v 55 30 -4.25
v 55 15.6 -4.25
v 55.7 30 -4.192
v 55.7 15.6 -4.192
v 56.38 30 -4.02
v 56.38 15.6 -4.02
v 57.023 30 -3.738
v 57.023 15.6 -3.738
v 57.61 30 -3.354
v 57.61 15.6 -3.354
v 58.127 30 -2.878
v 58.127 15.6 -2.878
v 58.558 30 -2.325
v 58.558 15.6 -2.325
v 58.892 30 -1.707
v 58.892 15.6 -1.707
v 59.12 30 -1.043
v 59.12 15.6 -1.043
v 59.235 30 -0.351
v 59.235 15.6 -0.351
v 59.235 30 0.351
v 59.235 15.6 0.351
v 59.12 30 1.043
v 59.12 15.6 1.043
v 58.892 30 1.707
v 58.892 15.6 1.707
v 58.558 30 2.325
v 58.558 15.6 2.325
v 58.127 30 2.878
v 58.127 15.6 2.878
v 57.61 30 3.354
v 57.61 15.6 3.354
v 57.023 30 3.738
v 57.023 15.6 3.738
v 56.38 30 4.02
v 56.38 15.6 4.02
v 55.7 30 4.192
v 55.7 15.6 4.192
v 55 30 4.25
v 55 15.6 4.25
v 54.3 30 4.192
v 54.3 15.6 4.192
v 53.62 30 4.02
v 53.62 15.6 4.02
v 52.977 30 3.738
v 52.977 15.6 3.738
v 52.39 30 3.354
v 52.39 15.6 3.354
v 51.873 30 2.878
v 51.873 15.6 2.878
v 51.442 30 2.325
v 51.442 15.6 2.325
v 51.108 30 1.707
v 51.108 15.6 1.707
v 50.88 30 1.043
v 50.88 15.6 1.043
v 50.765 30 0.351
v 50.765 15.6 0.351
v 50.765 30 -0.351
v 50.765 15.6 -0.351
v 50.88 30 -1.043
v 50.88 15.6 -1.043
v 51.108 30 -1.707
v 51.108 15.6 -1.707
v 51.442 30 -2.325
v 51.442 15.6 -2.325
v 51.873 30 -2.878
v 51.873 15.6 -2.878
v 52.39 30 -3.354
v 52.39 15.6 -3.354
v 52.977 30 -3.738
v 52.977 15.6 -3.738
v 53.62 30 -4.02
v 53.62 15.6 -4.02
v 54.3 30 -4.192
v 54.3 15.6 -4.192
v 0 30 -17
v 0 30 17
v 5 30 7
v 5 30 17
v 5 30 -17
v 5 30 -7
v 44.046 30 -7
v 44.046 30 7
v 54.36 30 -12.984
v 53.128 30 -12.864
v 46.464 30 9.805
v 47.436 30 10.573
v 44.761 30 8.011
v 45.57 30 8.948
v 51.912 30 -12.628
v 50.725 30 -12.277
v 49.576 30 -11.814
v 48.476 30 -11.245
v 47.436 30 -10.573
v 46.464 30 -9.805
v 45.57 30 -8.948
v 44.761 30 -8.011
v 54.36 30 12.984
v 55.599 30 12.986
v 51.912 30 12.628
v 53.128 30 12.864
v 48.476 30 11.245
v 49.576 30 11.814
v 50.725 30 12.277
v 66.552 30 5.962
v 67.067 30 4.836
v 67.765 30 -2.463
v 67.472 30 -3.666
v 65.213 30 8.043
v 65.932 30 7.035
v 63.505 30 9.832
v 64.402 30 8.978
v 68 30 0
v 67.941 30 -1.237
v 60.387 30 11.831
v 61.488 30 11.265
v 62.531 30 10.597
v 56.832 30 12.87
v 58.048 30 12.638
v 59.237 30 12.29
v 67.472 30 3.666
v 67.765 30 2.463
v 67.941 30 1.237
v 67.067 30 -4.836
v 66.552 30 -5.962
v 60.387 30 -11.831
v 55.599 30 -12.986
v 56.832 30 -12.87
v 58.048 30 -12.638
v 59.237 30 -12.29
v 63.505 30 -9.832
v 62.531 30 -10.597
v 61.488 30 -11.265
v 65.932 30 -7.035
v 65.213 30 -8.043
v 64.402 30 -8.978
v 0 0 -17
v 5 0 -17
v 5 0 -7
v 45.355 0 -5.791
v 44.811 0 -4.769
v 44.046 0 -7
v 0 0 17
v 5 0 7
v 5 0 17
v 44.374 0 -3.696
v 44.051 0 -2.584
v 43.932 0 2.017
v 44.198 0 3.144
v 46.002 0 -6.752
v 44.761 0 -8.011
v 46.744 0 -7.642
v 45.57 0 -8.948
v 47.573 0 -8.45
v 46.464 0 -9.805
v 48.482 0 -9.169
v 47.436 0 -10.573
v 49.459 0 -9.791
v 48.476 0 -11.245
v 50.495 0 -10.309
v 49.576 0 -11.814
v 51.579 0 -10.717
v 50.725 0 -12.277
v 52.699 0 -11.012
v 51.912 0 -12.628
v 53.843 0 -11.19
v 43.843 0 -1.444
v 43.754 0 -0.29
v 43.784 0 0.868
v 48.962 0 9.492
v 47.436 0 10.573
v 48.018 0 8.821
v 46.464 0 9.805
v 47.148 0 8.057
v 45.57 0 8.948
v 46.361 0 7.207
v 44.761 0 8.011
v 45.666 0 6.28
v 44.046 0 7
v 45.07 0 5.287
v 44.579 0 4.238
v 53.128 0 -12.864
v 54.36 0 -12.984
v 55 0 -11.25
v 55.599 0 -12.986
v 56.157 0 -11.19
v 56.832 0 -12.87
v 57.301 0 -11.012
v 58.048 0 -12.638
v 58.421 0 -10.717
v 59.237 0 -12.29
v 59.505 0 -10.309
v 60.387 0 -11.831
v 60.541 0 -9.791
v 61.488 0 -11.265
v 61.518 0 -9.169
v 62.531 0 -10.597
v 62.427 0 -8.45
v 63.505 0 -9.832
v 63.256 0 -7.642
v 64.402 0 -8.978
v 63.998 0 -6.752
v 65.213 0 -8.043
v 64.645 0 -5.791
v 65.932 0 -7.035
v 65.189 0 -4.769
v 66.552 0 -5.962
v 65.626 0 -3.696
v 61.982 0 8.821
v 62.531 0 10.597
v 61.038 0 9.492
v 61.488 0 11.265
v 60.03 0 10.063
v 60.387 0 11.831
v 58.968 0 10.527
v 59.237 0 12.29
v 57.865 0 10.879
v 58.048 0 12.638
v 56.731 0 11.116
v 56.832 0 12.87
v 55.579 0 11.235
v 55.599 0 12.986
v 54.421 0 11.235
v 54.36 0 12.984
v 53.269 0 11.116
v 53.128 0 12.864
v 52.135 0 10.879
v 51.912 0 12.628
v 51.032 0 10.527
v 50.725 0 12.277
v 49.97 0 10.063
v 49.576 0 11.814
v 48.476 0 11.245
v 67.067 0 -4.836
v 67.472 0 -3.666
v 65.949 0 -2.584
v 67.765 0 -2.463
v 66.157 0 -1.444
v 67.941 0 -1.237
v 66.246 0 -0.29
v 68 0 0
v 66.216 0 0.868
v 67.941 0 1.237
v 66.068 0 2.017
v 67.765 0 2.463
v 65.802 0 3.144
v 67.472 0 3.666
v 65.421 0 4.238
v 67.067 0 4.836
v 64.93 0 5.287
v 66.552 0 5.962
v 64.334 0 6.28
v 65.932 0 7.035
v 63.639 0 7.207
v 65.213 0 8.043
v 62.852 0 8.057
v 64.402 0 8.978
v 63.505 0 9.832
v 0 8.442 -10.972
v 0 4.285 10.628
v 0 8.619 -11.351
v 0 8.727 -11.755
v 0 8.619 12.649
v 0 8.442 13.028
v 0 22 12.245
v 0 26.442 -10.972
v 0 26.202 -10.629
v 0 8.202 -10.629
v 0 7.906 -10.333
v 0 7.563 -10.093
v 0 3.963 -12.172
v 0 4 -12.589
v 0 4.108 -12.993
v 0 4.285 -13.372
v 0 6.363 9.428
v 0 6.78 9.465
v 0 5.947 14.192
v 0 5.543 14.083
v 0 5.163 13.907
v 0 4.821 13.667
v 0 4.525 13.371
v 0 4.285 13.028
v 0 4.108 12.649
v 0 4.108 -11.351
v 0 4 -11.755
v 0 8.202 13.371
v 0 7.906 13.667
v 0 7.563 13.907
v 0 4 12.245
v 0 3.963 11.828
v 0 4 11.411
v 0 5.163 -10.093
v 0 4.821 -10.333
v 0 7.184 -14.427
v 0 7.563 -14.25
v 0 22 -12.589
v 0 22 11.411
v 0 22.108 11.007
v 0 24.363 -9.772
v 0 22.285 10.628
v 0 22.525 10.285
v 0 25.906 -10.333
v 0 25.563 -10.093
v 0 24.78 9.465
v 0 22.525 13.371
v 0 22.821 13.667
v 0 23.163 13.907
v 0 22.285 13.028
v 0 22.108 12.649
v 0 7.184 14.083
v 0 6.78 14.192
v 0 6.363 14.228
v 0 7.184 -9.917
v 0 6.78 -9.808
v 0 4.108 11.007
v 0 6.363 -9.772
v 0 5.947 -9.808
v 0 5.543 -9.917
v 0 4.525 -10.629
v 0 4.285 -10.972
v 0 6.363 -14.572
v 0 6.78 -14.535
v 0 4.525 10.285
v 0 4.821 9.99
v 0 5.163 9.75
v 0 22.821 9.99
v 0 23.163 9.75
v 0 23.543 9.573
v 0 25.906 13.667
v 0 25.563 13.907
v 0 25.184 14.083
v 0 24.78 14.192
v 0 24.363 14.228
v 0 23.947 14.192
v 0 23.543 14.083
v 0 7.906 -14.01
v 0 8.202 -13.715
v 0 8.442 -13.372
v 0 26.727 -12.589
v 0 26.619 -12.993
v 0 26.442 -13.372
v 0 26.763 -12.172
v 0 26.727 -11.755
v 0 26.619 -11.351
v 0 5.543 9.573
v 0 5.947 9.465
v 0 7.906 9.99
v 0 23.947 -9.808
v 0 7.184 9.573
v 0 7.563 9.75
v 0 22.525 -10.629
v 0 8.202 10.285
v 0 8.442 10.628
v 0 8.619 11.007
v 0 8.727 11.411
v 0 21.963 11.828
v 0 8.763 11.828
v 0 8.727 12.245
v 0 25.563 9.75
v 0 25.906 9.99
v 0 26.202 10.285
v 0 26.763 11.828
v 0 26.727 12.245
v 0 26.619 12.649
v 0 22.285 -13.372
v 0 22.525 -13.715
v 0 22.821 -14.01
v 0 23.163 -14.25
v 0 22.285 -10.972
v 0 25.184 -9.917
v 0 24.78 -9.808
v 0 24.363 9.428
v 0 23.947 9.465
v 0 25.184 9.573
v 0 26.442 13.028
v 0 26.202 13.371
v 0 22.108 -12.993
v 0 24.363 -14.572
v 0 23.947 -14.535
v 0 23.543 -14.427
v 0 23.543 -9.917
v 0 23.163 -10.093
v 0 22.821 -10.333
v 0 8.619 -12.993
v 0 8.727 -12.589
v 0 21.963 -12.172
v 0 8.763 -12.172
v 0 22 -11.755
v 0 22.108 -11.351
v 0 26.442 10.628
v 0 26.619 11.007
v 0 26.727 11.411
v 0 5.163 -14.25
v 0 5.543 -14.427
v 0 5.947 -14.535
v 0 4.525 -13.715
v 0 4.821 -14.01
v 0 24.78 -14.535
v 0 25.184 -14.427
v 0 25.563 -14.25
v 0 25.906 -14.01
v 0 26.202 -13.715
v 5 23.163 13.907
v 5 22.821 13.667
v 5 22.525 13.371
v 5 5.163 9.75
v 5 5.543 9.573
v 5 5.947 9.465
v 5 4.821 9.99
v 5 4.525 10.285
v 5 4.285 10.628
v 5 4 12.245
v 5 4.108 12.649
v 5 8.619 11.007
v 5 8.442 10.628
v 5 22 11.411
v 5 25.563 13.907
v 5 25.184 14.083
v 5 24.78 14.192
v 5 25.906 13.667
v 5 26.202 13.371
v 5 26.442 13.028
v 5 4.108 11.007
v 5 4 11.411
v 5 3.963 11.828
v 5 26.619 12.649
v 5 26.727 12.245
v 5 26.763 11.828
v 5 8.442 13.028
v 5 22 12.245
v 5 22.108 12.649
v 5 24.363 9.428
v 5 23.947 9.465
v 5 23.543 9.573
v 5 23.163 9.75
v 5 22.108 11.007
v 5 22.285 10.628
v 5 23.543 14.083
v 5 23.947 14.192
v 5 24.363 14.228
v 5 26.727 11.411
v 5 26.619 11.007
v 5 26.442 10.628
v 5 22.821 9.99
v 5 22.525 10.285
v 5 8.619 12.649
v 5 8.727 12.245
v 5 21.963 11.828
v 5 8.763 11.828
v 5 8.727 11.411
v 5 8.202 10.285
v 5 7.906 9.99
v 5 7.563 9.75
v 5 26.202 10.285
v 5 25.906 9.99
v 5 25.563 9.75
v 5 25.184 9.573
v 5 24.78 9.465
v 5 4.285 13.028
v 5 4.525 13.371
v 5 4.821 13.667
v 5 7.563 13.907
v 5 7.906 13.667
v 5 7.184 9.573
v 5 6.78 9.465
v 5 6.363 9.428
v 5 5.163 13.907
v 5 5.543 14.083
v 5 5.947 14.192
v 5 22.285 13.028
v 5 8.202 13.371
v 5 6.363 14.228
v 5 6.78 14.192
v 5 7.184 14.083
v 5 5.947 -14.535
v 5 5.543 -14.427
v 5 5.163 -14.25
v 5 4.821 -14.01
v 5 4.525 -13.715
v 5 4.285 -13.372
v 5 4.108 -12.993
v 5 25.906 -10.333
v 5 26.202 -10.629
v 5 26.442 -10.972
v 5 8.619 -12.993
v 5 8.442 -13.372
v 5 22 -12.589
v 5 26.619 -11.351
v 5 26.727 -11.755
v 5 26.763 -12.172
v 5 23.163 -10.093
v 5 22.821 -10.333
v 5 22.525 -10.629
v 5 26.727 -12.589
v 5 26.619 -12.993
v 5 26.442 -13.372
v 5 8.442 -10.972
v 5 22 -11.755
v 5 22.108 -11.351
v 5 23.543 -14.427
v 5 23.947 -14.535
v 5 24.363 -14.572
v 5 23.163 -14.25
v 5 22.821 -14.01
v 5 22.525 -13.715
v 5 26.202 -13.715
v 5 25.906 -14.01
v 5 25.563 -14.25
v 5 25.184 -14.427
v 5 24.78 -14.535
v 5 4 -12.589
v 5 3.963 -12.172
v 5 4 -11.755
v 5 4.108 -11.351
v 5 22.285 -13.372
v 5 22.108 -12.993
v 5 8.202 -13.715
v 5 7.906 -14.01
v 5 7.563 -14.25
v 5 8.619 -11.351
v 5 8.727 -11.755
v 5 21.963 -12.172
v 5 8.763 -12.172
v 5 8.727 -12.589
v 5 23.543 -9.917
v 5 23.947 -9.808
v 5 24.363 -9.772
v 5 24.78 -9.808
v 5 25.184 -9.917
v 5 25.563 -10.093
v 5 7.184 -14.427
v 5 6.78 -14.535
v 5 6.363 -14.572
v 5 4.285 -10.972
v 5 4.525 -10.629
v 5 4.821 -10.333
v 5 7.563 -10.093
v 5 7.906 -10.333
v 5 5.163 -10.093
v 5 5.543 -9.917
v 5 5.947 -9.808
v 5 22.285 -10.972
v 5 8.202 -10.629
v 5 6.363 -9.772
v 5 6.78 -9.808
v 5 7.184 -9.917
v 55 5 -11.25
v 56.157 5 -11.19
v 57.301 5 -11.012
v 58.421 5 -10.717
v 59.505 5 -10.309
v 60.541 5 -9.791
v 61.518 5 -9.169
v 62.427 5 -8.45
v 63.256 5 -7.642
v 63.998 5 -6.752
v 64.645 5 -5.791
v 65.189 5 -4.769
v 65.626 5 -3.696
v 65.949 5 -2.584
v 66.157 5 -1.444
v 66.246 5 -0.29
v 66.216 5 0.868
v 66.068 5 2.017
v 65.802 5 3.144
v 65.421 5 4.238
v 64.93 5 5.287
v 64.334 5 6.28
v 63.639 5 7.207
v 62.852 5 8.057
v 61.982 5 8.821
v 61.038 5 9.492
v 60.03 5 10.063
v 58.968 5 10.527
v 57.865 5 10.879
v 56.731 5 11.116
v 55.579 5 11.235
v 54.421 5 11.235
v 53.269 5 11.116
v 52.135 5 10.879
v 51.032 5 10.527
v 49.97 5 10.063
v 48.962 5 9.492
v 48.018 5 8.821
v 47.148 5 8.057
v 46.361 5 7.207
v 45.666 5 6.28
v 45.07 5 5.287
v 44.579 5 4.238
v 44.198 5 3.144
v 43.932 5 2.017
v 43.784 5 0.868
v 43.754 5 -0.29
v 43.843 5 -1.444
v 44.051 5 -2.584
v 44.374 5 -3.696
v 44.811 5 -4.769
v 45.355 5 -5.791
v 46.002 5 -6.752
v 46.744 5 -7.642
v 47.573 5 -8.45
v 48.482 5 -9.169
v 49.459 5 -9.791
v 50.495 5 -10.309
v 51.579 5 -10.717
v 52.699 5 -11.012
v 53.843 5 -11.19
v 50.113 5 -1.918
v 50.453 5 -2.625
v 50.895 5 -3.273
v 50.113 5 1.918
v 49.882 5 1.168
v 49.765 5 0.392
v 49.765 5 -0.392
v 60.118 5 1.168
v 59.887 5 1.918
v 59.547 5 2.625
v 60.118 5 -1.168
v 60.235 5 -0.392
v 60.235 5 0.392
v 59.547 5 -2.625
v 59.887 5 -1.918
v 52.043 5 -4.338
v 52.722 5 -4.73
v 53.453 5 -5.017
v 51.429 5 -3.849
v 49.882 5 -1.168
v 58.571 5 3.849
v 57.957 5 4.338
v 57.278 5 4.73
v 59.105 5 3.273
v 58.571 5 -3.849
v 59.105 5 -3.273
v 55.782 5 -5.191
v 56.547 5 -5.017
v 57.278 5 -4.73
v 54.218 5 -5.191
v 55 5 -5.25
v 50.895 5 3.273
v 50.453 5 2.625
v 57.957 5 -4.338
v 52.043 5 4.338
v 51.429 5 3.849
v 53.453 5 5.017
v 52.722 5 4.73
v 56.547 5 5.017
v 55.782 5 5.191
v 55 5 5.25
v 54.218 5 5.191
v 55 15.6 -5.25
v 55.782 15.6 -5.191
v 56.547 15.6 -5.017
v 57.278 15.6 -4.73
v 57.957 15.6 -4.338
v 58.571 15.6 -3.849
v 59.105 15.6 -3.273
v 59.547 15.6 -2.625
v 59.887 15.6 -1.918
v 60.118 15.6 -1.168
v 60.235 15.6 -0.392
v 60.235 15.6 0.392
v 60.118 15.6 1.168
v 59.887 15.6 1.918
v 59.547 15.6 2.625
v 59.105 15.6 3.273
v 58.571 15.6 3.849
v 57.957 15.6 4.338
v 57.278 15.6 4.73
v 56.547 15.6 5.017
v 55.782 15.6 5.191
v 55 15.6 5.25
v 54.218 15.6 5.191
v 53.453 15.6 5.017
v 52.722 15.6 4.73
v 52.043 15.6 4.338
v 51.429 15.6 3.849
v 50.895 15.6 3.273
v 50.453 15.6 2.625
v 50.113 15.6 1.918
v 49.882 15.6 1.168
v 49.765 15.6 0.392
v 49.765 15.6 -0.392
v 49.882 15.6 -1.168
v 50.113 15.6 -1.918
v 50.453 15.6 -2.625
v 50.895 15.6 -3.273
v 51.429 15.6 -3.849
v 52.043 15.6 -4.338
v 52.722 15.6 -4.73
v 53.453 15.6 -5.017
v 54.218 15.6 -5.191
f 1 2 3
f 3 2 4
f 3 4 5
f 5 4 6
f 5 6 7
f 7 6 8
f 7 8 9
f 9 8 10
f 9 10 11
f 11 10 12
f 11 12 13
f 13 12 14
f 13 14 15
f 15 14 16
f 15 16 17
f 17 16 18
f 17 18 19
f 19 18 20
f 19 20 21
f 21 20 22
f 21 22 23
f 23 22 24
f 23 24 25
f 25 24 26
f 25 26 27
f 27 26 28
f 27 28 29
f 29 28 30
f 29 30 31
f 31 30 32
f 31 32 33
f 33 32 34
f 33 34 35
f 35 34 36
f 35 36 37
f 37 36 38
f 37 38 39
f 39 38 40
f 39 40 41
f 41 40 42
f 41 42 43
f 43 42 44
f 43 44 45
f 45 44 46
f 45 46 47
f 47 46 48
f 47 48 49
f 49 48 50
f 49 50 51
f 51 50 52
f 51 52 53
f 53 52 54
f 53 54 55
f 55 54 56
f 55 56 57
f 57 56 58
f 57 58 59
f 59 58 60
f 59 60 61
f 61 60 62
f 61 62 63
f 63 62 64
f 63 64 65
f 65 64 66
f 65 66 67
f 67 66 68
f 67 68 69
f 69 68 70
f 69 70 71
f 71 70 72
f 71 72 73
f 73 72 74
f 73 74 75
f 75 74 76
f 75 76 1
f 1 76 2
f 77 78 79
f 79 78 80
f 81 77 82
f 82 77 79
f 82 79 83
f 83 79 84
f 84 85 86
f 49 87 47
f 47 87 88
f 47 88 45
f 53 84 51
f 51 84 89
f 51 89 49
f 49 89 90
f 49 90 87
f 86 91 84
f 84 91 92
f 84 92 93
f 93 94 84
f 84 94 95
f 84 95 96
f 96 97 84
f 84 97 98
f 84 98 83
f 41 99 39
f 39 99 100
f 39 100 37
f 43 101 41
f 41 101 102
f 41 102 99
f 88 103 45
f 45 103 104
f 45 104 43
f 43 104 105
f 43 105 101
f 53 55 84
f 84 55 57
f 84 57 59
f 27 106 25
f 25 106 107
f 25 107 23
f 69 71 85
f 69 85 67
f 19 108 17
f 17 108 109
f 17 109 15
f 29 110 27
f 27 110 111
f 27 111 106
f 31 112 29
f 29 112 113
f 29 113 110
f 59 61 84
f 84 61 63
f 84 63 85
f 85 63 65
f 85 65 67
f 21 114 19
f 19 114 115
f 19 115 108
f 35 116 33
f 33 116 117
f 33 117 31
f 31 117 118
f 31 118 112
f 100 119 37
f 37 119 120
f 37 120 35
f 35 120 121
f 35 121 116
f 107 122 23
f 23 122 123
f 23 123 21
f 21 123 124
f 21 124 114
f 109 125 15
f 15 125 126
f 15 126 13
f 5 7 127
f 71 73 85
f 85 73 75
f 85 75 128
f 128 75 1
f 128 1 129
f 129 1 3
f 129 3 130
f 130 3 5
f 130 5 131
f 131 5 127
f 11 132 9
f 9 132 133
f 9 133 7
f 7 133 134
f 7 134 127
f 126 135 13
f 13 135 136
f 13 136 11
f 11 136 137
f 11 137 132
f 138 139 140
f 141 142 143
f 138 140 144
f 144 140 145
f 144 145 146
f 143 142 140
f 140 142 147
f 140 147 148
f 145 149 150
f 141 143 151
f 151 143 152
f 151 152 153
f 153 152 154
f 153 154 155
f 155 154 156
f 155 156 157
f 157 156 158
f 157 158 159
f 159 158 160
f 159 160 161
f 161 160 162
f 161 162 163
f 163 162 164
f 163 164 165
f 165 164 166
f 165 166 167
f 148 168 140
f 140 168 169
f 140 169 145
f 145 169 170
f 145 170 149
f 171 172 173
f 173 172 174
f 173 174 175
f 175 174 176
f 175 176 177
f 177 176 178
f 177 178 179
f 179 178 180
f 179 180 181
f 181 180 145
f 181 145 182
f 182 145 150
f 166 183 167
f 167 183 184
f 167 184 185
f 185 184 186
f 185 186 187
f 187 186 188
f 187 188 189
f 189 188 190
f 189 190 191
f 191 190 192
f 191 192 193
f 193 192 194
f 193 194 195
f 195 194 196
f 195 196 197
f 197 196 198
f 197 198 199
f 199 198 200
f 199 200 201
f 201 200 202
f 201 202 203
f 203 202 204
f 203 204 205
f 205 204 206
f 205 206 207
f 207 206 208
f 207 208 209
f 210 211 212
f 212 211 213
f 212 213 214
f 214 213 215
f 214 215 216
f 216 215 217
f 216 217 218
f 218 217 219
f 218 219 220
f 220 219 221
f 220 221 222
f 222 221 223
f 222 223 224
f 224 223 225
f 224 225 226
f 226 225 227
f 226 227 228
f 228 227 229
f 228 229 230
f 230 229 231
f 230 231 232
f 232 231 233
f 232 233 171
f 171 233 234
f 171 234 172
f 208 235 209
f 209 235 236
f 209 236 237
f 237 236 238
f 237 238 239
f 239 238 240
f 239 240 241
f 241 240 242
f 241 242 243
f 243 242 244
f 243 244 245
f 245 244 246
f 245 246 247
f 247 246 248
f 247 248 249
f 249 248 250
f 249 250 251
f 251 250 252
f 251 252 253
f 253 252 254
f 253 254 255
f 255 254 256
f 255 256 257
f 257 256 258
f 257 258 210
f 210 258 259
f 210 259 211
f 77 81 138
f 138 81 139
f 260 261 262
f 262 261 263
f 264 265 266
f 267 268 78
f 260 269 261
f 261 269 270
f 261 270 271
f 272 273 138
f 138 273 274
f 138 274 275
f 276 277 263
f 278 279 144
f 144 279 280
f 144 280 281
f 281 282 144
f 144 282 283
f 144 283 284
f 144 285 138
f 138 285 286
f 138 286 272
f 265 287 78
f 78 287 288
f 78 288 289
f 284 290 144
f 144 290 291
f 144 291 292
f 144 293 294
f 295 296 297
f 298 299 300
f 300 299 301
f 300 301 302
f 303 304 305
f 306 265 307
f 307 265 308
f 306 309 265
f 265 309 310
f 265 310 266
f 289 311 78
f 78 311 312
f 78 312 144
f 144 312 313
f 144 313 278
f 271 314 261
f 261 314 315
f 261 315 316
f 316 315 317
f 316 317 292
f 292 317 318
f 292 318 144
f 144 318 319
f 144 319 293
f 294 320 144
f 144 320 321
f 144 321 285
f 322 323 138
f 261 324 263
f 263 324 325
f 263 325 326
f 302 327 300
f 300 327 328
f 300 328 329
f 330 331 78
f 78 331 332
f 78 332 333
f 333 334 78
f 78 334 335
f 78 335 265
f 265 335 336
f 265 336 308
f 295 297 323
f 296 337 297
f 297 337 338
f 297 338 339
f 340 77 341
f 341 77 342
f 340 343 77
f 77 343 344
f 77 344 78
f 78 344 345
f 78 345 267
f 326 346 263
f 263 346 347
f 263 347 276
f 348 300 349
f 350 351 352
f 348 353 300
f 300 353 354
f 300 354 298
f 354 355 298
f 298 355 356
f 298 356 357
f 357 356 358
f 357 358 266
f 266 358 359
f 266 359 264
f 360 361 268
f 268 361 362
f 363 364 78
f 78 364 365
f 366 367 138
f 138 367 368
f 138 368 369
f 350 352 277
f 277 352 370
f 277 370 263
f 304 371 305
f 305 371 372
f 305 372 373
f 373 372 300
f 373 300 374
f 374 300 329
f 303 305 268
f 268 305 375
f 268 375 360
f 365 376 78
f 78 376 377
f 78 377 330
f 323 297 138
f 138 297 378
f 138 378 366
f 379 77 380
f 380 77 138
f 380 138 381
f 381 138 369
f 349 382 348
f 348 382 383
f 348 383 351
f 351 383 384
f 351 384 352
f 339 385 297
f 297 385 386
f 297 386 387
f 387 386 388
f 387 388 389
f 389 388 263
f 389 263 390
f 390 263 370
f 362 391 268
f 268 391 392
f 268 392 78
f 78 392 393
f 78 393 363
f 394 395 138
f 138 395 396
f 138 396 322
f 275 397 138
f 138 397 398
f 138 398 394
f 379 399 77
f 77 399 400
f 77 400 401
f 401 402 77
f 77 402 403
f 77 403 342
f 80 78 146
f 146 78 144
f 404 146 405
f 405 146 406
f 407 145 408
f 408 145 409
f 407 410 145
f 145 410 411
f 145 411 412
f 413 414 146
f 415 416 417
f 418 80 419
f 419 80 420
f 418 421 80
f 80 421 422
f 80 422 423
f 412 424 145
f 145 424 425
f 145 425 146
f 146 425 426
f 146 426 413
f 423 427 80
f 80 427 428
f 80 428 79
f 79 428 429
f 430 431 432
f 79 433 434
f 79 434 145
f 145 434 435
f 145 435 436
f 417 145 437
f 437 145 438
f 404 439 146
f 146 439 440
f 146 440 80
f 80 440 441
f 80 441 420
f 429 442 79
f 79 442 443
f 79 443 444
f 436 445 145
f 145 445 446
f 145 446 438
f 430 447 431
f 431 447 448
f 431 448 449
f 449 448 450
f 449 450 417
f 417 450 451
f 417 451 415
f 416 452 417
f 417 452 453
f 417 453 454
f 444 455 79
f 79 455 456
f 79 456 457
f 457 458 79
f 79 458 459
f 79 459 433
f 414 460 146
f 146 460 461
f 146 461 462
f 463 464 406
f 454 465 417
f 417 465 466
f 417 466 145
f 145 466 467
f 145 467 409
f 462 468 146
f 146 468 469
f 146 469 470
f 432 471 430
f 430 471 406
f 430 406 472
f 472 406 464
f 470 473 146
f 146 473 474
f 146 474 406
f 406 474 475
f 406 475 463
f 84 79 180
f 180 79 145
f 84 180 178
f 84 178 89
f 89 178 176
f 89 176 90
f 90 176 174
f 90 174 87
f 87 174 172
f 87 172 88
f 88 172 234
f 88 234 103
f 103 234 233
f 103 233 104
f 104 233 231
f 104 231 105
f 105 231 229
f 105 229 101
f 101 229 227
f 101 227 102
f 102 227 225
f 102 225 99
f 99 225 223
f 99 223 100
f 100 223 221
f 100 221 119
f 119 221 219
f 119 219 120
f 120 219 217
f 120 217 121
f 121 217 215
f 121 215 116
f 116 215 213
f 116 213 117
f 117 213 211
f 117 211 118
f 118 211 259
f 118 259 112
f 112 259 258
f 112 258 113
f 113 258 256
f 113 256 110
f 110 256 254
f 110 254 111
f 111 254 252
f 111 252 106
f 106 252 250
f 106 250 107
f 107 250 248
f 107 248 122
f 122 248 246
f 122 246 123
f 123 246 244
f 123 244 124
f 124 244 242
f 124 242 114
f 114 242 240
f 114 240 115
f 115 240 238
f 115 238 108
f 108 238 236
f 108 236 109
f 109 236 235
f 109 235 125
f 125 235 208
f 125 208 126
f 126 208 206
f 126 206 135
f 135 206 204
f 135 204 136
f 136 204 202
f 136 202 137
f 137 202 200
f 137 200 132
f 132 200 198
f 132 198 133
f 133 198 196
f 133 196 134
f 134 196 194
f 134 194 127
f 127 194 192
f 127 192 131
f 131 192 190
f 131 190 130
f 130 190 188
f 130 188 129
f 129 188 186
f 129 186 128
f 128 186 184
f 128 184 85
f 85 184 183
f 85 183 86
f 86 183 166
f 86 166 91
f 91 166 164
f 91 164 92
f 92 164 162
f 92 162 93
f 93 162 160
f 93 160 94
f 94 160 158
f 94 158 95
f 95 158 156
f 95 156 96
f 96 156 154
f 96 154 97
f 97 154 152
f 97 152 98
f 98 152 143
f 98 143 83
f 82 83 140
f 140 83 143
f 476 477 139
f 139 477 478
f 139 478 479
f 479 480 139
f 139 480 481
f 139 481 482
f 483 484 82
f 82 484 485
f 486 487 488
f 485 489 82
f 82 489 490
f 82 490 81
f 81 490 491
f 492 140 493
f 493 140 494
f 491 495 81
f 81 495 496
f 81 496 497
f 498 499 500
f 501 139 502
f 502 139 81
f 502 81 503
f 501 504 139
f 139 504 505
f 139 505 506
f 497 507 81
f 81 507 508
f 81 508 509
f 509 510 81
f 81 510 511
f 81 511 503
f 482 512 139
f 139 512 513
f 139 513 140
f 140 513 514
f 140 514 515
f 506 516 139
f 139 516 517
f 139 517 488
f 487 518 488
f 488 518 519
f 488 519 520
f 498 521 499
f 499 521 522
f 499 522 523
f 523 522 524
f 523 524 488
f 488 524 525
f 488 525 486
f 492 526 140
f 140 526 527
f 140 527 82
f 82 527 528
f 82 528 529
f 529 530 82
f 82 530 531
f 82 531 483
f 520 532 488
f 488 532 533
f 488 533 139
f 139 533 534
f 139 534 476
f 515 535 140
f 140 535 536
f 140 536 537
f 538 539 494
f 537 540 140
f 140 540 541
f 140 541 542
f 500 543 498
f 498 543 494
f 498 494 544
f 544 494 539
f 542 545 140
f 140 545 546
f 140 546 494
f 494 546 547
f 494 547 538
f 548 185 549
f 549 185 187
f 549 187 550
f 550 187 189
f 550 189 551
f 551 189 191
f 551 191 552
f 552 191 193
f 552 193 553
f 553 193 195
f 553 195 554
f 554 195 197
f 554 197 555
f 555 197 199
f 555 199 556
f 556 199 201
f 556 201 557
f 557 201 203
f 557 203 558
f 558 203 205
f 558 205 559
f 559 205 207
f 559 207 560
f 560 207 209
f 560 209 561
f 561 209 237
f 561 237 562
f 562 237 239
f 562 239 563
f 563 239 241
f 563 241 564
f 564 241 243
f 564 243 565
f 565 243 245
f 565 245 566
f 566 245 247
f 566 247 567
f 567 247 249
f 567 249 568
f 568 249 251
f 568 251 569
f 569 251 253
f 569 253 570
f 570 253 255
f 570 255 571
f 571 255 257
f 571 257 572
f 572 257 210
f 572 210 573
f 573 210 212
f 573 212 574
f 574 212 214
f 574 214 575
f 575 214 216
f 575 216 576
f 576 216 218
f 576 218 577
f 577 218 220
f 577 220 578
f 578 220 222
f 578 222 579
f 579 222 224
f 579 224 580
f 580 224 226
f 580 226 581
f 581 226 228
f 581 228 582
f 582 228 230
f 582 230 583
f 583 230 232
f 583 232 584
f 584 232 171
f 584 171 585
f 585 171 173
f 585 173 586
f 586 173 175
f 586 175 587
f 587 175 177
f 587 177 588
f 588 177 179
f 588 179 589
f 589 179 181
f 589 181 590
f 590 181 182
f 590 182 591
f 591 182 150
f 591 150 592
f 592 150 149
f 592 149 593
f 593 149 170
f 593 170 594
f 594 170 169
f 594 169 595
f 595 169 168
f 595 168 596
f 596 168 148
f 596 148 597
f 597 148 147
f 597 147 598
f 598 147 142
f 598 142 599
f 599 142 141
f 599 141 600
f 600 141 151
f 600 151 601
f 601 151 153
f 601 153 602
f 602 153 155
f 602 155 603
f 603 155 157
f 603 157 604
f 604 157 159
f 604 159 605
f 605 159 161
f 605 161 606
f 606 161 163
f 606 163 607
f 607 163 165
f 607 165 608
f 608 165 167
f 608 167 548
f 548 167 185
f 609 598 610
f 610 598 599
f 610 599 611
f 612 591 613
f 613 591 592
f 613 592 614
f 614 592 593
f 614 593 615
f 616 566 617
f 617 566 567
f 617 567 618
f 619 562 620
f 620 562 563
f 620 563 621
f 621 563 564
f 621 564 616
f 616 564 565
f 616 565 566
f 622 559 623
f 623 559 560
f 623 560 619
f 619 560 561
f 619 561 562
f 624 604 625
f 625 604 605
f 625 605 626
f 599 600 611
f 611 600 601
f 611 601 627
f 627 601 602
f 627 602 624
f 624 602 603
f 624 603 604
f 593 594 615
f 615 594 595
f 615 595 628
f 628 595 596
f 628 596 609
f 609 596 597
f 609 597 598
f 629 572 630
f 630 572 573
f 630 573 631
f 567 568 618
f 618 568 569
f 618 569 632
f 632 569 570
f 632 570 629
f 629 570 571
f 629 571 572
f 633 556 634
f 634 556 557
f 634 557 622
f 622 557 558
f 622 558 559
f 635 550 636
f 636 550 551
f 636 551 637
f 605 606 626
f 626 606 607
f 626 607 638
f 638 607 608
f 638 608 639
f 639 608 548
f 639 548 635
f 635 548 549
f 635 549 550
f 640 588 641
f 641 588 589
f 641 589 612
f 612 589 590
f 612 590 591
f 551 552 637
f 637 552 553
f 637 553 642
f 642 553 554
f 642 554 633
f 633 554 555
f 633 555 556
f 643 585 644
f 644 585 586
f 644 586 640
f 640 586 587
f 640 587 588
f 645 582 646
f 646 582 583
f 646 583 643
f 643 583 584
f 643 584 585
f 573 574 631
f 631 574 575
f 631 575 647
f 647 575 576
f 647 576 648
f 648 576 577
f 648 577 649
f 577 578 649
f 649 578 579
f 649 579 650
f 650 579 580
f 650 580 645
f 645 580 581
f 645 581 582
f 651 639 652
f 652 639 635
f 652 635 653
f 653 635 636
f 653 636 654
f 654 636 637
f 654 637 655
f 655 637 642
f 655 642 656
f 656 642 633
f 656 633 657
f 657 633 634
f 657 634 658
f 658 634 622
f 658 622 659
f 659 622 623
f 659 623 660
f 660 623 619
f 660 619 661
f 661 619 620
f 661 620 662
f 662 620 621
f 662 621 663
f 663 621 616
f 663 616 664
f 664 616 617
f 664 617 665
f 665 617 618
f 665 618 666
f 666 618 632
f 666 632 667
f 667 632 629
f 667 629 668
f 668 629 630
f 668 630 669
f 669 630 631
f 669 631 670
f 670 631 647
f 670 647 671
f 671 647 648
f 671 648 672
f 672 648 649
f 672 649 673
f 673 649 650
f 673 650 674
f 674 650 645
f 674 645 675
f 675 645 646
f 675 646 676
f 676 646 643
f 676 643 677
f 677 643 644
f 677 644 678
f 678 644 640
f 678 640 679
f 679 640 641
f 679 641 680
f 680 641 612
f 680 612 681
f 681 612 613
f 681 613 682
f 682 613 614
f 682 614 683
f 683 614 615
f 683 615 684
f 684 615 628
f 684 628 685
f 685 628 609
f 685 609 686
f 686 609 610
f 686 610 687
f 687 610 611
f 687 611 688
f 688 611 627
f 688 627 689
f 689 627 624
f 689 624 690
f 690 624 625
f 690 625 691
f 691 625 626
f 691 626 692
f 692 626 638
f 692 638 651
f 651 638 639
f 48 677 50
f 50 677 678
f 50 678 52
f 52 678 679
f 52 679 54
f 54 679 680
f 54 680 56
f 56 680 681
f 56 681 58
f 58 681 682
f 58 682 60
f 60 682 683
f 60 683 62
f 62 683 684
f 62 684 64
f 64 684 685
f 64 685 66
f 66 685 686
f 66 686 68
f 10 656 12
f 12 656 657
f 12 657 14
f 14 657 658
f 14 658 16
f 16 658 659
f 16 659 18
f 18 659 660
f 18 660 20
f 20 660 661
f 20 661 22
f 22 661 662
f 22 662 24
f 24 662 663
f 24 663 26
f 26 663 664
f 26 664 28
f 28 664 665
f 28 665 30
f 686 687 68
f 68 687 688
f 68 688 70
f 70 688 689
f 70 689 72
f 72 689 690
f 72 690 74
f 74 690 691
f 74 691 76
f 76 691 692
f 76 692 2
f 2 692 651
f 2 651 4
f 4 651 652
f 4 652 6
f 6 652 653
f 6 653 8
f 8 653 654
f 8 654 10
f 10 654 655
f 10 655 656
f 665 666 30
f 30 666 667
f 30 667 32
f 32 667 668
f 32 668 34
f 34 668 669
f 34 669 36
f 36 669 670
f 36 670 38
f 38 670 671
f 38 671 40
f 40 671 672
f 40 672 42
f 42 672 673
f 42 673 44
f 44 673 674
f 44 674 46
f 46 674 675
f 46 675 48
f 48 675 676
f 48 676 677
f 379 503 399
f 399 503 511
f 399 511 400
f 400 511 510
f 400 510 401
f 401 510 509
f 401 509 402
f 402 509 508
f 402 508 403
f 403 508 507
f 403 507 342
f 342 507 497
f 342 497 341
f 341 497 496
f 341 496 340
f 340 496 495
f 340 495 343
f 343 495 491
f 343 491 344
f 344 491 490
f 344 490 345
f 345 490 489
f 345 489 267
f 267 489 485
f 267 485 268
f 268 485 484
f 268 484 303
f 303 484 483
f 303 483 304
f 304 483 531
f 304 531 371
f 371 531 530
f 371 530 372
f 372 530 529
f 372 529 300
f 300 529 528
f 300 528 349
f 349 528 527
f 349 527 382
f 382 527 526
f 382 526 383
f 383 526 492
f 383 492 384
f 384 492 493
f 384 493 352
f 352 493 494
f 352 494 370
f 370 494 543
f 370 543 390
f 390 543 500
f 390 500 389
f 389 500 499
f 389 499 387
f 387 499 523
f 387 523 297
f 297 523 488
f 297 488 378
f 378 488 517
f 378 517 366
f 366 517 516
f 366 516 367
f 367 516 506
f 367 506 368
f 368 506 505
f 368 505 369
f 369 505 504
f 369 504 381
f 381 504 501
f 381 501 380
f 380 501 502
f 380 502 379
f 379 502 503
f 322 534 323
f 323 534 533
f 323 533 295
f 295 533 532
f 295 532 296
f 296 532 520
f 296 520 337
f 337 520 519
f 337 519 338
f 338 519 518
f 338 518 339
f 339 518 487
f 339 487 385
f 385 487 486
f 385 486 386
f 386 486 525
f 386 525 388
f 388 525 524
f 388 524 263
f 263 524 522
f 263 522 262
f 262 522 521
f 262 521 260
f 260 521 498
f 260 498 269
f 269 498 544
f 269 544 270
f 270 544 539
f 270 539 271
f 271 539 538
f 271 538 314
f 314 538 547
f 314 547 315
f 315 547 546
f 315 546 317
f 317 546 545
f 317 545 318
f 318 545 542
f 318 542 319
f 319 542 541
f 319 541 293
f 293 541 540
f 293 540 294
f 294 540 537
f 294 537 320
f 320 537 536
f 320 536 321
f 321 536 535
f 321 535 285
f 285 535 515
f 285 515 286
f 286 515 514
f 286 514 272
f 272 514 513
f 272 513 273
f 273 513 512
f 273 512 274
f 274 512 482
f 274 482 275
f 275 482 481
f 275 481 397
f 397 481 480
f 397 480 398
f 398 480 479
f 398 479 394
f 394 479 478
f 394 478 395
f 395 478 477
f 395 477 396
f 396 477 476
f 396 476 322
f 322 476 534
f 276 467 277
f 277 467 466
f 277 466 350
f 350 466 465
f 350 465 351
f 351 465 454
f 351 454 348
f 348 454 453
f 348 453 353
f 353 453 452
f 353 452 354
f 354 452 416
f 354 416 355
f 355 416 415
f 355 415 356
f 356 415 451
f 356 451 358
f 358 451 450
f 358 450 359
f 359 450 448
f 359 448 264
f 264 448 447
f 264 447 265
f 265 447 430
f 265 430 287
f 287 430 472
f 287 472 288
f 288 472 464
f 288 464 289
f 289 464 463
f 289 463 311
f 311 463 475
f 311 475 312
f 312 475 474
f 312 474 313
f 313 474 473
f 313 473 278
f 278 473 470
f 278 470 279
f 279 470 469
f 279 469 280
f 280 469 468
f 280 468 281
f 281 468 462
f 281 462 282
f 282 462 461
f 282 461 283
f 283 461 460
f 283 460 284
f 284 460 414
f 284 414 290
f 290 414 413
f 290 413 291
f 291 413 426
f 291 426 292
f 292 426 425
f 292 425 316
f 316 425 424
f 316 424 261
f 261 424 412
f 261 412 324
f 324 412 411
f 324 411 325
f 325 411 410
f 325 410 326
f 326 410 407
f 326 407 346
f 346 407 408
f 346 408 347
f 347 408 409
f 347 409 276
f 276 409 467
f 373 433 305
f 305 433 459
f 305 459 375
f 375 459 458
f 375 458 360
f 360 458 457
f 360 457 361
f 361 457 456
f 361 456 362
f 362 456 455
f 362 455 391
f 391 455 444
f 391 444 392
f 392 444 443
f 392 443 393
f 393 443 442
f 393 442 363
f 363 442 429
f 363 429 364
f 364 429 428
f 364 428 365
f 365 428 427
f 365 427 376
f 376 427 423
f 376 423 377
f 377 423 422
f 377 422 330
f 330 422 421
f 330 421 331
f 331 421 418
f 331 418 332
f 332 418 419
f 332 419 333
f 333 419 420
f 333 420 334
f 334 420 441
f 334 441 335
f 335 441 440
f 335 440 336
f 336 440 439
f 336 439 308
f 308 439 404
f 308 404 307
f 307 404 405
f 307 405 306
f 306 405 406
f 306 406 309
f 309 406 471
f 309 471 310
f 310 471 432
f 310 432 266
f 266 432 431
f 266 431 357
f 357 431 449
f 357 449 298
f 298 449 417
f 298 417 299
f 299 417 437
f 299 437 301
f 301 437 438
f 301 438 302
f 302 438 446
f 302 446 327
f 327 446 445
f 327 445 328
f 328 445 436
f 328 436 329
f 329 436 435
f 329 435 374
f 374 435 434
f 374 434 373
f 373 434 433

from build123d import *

# Parameters (mm, degrees)
SKETCH2_R           = 4.25
BOSS_EXTRUDE1_DEPTH = 30
SKETCH3_R           = 11.25
SKETCH3_R_2         = 5.25
SKETCH3_R_3         = 4.25
CUT_EXTRUDE1_DEPTH  = 5
CUT_EXTRUDE2_START  = -5
SKETCH3_3_R         = 5.25
SKETCH3_3_R_2       = 4.25
CUT_EXTRUDE2_DEPTH  = 10.6
SKETCH4_R           = 2.4
CUT_EXTRUDE3_DEPTH  = 72.819217484


with BuildPart() as part:
    # Sketch2 → Boss-Extrude1 (new body)
    with BuildSketch(Plane(origin=(0, 0, 0), x_dir=(1, 0, 0), z_dir=(0, 1, 0))):
        with BuildLine():
            Line((0, 17), (0, -17))
            Line((0, -17), (5, -17))
            Line((5, -17), (5, -7))
            Line((5, -7), (44.04554885, -7))
            ThreePointArc((44.04554885, -7), (68, 0), (44.04554885, 7))
            Line((44.04554885, 7), (5, 7))
            Line((5, 7), (5, 17))
            Line((5, 17), (0, 17))
        make_face()
        with Locations(Location((55, 0, 0), (0, 0, 270))):
            Circle(SKETCH2_R, mode=Mode.SUBTRACT)
    extrude(amount=BOSS_EXTRUDE1_DEPTH)

    # Sketch3 → Cut-Extrude1 (cut)
    with BuildSketch(Plane.XZ):
        with Locations(Location((55, 0, 0), (0, 0, 270))):
            Circle(SKETCH3_R)
        with Locations((55, 0)):
            Circle(SKETCH3_R_2, mode=Mode.SUBTRACT)
        with Locations((55, 0)):
            Circle(SKETCH3_R_2)
        with Locations(Location((55, 0, 0), (0, 0, 270))):
            Circle(SKETCH3_R_3, mode=Mode.SUBTRACT)
    extrude(amount=-CUT_EXTRUDE1_DEPTH, mode=Mode.SUBTRACT)

    # Sketch3<3> → Cut-Extrude2 (cut)
    with BuildSketch(Plane.XZ.offset(CUT_EXTRUDE2_START)):
        with Locations(Location((55, 0, 0), (0, 0, 270))):
            Circle(SKETCH3_3_R)
        with Locations(Location((55, 0, 0), (0, 0, 270))):
            Circle(SKETCH3_3_R_2, mode=Mode.SUBTRACT)
    extrude(amount=-CUT_EXTRUDE2_DEPTH, mode=Mode.SUBTRACT)

    # Sketch4 → Cut-Extrude3 (cut, through all)
    with BuildSketch(Plane(origin=(5, 0, 0), x_dir=(0, 0, -1), z_dir=(1, 0, 0))):
        with Locations((12.17186788, 24.363439063)):
            Circle(SKETCH4_R)
        with Locations((12.17186788, 6.363439063)):
            Circle(SKETCH4_R)
        with Locations((-11.82813212, 6.363439063)):
            Circle(SKETCH4_R)
        with Locations((-11.82813212, 24.363439063)):
            Circle(SKETCH4_R)
    extrude(amount=-CUT_EXTRUDE3_DEPTH, mode=Mode.SUBTRACT)


solid = part.part
